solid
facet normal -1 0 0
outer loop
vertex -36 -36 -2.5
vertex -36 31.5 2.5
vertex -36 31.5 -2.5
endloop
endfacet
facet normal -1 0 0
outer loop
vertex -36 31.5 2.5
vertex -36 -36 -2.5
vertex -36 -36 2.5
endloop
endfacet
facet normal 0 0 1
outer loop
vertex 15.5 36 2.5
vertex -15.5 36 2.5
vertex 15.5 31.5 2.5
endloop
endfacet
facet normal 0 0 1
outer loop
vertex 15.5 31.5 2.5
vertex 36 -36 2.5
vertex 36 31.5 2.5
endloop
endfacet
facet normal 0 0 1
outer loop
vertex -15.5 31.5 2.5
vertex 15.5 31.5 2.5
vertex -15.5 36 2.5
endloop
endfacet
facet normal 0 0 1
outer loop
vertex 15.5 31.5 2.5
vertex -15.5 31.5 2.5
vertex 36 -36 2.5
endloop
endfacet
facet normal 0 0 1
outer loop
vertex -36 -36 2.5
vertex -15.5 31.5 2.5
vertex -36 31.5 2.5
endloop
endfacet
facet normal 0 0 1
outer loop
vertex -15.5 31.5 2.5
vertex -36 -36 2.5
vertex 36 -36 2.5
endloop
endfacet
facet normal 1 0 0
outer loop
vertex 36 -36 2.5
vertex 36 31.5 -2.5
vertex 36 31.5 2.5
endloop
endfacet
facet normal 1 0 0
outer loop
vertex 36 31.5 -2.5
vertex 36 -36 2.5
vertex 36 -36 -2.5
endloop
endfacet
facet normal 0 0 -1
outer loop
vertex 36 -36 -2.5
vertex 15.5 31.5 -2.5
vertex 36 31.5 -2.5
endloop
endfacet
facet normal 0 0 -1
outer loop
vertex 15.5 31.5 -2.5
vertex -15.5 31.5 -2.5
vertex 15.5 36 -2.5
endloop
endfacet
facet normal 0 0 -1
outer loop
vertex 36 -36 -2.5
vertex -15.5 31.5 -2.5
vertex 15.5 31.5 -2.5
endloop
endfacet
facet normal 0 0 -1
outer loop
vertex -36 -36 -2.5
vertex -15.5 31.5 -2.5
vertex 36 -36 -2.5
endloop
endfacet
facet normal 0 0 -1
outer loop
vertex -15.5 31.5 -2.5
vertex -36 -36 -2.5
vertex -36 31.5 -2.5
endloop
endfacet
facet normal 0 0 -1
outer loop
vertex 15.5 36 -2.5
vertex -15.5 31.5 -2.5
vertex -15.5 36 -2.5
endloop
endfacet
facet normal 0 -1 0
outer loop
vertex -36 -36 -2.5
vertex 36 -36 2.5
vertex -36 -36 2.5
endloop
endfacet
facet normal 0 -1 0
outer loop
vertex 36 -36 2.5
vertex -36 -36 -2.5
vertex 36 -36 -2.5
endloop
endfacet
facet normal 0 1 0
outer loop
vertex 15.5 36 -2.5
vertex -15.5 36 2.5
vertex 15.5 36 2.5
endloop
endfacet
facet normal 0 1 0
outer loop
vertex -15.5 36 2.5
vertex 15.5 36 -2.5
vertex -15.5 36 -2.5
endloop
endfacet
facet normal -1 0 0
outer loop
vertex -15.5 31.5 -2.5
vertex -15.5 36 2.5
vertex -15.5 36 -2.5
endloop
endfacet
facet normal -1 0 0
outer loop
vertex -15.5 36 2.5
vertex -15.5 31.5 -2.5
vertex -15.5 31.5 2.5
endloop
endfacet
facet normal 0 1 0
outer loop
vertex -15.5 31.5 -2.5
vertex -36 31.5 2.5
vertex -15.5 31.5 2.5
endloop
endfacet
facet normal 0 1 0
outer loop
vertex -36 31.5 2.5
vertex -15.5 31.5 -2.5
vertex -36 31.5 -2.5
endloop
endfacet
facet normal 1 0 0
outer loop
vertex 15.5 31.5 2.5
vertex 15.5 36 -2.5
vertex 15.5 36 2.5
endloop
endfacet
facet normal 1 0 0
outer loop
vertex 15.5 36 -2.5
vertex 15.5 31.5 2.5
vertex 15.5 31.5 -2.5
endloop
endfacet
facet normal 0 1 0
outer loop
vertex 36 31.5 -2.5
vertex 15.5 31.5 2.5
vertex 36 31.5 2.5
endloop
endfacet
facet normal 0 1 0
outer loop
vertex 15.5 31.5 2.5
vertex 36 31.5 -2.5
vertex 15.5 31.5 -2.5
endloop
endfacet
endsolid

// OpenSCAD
difference() {
    cube([72, 72, 5], center=true);
    translate([-26, 34, 0]) cube([21, 5, 5], center=true);
    translate([26, 34, 0]) cube([21, 5, 5], center=true);
}
